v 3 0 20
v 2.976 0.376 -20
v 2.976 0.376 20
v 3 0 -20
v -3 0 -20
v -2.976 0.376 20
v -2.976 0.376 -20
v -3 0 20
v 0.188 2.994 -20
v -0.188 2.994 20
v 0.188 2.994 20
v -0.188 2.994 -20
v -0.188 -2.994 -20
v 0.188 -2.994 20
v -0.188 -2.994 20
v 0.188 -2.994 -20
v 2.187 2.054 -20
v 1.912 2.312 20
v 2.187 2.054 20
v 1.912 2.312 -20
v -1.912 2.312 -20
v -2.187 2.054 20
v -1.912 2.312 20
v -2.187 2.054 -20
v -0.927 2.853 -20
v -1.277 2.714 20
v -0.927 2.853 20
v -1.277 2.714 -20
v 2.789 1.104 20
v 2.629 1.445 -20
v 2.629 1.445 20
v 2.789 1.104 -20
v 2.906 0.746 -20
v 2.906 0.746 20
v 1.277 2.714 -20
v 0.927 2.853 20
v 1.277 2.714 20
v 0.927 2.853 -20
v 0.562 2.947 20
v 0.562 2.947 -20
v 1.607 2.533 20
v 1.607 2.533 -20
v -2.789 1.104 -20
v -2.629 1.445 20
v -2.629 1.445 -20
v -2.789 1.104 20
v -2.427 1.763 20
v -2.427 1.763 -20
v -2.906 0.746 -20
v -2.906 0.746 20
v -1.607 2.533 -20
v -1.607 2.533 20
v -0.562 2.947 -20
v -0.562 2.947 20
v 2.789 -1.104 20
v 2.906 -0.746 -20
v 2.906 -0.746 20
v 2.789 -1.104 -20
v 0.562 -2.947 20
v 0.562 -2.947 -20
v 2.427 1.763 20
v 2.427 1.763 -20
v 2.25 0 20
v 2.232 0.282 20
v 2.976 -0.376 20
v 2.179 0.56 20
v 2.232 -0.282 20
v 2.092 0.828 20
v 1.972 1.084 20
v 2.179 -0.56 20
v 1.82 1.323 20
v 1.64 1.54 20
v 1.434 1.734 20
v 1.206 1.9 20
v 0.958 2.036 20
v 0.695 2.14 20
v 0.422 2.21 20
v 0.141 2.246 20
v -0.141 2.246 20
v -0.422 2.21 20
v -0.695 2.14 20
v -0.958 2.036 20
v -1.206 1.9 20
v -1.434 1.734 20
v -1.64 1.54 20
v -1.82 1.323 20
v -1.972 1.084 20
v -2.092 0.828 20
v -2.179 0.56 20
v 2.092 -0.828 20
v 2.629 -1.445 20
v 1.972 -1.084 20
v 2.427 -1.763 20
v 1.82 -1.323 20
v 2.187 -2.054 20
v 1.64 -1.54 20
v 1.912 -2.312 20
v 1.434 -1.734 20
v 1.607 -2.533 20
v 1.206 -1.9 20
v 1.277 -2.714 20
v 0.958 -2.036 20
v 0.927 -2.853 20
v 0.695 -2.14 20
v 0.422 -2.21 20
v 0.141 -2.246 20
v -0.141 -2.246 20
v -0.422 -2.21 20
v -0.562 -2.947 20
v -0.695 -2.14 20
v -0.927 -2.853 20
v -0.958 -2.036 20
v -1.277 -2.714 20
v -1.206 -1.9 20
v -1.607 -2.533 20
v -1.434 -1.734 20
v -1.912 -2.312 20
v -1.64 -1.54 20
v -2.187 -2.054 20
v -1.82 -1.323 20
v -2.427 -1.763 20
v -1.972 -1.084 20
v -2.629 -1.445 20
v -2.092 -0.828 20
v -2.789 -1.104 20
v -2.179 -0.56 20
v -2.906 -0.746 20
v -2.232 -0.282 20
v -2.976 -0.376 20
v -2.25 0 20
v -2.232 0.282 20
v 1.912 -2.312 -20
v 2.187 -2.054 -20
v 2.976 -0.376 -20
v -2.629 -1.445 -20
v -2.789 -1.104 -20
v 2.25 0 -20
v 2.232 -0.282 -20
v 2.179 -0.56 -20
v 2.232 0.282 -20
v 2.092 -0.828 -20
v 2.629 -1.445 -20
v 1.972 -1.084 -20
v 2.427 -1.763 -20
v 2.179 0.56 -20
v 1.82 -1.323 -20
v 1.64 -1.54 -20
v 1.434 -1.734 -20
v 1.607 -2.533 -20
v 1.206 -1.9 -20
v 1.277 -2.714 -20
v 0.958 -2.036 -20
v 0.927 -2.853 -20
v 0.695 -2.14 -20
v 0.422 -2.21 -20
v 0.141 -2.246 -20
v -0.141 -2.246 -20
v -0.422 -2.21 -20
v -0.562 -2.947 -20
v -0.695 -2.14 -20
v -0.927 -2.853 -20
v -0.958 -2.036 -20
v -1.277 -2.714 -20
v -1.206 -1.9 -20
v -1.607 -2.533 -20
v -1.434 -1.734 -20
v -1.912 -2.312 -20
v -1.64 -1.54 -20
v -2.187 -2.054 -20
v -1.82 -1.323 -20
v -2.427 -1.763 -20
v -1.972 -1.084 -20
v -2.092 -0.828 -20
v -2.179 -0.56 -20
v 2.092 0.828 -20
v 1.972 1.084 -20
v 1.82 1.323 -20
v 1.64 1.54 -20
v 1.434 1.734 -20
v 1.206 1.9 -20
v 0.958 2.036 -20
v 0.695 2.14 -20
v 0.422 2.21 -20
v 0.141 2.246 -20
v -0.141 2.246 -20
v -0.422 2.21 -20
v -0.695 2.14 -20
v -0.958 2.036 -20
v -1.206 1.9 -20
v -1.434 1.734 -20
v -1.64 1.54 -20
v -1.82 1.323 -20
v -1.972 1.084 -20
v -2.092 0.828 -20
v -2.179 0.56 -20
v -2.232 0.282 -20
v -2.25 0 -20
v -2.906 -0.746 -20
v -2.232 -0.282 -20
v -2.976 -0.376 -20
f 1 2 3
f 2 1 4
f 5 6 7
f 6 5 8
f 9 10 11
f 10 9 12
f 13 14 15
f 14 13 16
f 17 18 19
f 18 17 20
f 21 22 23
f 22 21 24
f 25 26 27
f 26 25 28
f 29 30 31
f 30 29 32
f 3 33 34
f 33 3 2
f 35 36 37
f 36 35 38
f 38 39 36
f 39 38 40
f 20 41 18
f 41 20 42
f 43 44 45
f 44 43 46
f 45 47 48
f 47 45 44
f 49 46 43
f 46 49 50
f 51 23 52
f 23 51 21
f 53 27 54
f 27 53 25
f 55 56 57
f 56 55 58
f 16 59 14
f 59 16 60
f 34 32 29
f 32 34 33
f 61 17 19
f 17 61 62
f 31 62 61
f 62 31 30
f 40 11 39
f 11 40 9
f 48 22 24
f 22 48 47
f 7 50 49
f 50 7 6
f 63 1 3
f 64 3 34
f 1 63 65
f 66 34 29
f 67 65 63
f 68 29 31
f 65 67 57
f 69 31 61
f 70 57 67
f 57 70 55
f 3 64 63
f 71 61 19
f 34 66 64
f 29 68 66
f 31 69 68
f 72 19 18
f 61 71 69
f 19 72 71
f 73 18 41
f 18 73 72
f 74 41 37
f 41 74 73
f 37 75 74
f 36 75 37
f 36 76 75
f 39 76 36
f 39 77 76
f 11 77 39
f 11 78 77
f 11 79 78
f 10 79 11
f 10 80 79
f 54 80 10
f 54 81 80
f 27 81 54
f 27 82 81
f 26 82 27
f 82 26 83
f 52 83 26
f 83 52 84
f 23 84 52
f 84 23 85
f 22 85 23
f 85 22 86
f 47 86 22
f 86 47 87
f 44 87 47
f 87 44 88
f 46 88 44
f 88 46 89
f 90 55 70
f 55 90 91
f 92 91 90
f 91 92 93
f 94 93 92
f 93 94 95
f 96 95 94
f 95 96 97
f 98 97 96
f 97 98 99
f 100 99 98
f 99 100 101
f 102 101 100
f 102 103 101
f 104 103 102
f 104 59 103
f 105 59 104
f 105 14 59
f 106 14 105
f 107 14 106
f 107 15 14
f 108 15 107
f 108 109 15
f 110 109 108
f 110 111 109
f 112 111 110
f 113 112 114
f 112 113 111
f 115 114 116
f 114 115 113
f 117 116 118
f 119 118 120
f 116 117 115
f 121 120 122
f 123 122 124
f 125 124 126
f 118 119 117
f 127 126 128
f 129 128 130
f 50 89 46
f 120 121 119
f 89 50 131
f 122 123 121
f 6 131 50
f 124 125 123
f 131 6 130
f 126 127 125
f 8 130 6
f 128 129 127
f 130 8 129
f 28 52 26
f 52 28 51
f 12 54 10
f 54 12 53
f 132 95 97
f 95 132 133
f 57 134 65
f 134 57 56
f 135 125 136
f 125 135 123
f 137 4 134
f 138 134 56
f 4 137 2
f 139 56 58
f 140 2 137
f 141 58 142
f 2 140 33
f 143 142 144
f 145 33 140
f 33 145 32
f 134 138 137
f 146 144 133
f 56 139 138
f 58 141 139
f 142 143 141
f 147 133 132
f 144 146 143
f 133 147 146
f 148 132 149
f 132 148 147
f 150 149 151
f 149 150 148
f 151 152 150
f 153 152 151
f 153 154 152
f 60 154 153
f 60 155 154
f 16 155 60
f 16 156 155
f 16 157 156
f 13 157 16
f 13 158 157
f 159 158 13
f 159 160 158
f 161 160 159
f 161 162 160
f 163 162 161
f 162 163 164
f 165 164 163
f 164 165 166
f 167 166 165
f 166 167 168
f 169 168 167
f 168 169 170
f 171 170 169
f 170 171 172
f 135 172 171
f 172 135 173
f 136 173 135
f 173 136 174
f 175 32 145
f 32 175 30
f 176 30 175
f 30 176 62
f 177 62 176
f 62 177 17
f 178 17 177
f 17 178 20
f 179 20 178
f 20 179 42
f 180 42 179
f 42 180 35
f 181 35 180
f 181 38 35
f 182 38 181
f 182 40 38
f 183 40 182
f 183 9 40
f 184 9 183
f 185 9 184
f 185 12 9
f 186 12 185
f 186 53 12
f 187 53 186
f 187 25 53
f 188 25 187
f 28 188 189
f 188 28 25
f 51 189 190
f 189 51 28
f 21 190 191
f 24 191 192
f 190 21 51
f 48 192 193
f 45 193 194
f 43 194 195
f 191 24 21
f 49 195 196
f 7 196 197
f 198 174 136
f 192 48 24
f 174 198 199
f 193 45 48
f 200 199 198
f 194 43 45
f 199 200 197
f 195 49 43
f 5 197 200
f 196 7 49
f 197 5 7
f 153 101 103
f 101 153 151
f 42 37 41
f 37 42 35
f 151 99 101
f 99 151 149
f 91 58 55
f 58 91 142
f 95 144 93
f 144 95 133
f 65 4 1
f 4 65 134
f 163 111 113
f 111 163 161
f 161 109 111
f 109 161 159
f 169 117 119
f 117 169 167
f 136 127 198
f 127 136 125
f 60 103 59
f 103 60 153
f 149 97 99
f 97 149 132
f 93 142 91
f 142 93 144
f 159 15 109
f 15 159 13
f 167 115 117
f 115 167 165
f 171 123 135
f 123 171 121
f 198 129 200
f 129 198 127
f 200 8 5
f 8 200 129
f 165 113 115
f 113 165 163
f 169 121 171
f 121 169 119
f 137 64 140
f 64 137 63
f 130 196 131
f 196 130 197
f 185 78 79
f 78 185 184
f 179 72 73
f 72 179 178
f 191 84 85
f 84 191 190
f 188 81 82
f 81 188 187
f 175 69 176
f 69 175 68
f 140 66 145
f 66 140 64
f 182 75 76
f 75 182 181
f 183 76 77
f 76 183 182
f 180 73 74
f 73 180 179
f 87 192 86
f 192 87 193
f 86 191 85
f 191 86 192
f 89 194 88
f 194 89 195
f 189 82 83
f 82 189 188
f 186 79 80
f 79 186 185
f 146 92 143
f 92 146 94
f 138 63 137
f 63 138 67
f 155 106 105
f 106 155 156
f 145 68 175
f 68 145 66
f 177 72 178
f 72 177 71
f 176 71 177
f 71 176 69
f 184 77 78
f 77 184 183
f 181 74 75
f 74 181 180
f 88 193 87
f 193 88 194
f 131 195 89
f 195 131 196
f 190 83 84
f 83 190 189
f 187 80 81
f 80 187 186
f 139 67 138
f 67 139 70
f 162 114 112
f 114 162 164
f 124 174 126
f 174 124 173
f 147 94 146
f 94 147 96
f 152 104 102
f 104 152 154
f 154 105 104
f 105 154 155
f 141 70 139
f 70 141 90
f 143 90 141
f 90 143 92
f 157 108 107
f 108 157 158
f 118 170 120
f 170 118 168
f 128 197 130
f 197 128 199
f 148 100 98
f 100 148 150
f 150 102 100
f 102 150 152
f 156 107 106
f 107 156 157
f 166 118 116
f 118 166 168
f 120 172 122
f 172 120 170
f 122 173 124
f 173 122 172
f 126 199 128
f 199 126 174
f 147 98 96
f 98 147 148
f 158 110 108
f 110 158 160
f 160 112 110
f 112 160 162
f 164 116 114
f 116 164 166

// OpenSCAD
$fn = 50;


difference() {
	union() {
		translate(v = [0, 0, -20.0000000000]) {
			cylinder(h = 40, r = 3.0000000000);
		}
	}
	union() {
		translate(v = [0, 0, -100.0000000000]) {
			cylinder(h = 200, r = 2.2500000000);
		}
	}
}
